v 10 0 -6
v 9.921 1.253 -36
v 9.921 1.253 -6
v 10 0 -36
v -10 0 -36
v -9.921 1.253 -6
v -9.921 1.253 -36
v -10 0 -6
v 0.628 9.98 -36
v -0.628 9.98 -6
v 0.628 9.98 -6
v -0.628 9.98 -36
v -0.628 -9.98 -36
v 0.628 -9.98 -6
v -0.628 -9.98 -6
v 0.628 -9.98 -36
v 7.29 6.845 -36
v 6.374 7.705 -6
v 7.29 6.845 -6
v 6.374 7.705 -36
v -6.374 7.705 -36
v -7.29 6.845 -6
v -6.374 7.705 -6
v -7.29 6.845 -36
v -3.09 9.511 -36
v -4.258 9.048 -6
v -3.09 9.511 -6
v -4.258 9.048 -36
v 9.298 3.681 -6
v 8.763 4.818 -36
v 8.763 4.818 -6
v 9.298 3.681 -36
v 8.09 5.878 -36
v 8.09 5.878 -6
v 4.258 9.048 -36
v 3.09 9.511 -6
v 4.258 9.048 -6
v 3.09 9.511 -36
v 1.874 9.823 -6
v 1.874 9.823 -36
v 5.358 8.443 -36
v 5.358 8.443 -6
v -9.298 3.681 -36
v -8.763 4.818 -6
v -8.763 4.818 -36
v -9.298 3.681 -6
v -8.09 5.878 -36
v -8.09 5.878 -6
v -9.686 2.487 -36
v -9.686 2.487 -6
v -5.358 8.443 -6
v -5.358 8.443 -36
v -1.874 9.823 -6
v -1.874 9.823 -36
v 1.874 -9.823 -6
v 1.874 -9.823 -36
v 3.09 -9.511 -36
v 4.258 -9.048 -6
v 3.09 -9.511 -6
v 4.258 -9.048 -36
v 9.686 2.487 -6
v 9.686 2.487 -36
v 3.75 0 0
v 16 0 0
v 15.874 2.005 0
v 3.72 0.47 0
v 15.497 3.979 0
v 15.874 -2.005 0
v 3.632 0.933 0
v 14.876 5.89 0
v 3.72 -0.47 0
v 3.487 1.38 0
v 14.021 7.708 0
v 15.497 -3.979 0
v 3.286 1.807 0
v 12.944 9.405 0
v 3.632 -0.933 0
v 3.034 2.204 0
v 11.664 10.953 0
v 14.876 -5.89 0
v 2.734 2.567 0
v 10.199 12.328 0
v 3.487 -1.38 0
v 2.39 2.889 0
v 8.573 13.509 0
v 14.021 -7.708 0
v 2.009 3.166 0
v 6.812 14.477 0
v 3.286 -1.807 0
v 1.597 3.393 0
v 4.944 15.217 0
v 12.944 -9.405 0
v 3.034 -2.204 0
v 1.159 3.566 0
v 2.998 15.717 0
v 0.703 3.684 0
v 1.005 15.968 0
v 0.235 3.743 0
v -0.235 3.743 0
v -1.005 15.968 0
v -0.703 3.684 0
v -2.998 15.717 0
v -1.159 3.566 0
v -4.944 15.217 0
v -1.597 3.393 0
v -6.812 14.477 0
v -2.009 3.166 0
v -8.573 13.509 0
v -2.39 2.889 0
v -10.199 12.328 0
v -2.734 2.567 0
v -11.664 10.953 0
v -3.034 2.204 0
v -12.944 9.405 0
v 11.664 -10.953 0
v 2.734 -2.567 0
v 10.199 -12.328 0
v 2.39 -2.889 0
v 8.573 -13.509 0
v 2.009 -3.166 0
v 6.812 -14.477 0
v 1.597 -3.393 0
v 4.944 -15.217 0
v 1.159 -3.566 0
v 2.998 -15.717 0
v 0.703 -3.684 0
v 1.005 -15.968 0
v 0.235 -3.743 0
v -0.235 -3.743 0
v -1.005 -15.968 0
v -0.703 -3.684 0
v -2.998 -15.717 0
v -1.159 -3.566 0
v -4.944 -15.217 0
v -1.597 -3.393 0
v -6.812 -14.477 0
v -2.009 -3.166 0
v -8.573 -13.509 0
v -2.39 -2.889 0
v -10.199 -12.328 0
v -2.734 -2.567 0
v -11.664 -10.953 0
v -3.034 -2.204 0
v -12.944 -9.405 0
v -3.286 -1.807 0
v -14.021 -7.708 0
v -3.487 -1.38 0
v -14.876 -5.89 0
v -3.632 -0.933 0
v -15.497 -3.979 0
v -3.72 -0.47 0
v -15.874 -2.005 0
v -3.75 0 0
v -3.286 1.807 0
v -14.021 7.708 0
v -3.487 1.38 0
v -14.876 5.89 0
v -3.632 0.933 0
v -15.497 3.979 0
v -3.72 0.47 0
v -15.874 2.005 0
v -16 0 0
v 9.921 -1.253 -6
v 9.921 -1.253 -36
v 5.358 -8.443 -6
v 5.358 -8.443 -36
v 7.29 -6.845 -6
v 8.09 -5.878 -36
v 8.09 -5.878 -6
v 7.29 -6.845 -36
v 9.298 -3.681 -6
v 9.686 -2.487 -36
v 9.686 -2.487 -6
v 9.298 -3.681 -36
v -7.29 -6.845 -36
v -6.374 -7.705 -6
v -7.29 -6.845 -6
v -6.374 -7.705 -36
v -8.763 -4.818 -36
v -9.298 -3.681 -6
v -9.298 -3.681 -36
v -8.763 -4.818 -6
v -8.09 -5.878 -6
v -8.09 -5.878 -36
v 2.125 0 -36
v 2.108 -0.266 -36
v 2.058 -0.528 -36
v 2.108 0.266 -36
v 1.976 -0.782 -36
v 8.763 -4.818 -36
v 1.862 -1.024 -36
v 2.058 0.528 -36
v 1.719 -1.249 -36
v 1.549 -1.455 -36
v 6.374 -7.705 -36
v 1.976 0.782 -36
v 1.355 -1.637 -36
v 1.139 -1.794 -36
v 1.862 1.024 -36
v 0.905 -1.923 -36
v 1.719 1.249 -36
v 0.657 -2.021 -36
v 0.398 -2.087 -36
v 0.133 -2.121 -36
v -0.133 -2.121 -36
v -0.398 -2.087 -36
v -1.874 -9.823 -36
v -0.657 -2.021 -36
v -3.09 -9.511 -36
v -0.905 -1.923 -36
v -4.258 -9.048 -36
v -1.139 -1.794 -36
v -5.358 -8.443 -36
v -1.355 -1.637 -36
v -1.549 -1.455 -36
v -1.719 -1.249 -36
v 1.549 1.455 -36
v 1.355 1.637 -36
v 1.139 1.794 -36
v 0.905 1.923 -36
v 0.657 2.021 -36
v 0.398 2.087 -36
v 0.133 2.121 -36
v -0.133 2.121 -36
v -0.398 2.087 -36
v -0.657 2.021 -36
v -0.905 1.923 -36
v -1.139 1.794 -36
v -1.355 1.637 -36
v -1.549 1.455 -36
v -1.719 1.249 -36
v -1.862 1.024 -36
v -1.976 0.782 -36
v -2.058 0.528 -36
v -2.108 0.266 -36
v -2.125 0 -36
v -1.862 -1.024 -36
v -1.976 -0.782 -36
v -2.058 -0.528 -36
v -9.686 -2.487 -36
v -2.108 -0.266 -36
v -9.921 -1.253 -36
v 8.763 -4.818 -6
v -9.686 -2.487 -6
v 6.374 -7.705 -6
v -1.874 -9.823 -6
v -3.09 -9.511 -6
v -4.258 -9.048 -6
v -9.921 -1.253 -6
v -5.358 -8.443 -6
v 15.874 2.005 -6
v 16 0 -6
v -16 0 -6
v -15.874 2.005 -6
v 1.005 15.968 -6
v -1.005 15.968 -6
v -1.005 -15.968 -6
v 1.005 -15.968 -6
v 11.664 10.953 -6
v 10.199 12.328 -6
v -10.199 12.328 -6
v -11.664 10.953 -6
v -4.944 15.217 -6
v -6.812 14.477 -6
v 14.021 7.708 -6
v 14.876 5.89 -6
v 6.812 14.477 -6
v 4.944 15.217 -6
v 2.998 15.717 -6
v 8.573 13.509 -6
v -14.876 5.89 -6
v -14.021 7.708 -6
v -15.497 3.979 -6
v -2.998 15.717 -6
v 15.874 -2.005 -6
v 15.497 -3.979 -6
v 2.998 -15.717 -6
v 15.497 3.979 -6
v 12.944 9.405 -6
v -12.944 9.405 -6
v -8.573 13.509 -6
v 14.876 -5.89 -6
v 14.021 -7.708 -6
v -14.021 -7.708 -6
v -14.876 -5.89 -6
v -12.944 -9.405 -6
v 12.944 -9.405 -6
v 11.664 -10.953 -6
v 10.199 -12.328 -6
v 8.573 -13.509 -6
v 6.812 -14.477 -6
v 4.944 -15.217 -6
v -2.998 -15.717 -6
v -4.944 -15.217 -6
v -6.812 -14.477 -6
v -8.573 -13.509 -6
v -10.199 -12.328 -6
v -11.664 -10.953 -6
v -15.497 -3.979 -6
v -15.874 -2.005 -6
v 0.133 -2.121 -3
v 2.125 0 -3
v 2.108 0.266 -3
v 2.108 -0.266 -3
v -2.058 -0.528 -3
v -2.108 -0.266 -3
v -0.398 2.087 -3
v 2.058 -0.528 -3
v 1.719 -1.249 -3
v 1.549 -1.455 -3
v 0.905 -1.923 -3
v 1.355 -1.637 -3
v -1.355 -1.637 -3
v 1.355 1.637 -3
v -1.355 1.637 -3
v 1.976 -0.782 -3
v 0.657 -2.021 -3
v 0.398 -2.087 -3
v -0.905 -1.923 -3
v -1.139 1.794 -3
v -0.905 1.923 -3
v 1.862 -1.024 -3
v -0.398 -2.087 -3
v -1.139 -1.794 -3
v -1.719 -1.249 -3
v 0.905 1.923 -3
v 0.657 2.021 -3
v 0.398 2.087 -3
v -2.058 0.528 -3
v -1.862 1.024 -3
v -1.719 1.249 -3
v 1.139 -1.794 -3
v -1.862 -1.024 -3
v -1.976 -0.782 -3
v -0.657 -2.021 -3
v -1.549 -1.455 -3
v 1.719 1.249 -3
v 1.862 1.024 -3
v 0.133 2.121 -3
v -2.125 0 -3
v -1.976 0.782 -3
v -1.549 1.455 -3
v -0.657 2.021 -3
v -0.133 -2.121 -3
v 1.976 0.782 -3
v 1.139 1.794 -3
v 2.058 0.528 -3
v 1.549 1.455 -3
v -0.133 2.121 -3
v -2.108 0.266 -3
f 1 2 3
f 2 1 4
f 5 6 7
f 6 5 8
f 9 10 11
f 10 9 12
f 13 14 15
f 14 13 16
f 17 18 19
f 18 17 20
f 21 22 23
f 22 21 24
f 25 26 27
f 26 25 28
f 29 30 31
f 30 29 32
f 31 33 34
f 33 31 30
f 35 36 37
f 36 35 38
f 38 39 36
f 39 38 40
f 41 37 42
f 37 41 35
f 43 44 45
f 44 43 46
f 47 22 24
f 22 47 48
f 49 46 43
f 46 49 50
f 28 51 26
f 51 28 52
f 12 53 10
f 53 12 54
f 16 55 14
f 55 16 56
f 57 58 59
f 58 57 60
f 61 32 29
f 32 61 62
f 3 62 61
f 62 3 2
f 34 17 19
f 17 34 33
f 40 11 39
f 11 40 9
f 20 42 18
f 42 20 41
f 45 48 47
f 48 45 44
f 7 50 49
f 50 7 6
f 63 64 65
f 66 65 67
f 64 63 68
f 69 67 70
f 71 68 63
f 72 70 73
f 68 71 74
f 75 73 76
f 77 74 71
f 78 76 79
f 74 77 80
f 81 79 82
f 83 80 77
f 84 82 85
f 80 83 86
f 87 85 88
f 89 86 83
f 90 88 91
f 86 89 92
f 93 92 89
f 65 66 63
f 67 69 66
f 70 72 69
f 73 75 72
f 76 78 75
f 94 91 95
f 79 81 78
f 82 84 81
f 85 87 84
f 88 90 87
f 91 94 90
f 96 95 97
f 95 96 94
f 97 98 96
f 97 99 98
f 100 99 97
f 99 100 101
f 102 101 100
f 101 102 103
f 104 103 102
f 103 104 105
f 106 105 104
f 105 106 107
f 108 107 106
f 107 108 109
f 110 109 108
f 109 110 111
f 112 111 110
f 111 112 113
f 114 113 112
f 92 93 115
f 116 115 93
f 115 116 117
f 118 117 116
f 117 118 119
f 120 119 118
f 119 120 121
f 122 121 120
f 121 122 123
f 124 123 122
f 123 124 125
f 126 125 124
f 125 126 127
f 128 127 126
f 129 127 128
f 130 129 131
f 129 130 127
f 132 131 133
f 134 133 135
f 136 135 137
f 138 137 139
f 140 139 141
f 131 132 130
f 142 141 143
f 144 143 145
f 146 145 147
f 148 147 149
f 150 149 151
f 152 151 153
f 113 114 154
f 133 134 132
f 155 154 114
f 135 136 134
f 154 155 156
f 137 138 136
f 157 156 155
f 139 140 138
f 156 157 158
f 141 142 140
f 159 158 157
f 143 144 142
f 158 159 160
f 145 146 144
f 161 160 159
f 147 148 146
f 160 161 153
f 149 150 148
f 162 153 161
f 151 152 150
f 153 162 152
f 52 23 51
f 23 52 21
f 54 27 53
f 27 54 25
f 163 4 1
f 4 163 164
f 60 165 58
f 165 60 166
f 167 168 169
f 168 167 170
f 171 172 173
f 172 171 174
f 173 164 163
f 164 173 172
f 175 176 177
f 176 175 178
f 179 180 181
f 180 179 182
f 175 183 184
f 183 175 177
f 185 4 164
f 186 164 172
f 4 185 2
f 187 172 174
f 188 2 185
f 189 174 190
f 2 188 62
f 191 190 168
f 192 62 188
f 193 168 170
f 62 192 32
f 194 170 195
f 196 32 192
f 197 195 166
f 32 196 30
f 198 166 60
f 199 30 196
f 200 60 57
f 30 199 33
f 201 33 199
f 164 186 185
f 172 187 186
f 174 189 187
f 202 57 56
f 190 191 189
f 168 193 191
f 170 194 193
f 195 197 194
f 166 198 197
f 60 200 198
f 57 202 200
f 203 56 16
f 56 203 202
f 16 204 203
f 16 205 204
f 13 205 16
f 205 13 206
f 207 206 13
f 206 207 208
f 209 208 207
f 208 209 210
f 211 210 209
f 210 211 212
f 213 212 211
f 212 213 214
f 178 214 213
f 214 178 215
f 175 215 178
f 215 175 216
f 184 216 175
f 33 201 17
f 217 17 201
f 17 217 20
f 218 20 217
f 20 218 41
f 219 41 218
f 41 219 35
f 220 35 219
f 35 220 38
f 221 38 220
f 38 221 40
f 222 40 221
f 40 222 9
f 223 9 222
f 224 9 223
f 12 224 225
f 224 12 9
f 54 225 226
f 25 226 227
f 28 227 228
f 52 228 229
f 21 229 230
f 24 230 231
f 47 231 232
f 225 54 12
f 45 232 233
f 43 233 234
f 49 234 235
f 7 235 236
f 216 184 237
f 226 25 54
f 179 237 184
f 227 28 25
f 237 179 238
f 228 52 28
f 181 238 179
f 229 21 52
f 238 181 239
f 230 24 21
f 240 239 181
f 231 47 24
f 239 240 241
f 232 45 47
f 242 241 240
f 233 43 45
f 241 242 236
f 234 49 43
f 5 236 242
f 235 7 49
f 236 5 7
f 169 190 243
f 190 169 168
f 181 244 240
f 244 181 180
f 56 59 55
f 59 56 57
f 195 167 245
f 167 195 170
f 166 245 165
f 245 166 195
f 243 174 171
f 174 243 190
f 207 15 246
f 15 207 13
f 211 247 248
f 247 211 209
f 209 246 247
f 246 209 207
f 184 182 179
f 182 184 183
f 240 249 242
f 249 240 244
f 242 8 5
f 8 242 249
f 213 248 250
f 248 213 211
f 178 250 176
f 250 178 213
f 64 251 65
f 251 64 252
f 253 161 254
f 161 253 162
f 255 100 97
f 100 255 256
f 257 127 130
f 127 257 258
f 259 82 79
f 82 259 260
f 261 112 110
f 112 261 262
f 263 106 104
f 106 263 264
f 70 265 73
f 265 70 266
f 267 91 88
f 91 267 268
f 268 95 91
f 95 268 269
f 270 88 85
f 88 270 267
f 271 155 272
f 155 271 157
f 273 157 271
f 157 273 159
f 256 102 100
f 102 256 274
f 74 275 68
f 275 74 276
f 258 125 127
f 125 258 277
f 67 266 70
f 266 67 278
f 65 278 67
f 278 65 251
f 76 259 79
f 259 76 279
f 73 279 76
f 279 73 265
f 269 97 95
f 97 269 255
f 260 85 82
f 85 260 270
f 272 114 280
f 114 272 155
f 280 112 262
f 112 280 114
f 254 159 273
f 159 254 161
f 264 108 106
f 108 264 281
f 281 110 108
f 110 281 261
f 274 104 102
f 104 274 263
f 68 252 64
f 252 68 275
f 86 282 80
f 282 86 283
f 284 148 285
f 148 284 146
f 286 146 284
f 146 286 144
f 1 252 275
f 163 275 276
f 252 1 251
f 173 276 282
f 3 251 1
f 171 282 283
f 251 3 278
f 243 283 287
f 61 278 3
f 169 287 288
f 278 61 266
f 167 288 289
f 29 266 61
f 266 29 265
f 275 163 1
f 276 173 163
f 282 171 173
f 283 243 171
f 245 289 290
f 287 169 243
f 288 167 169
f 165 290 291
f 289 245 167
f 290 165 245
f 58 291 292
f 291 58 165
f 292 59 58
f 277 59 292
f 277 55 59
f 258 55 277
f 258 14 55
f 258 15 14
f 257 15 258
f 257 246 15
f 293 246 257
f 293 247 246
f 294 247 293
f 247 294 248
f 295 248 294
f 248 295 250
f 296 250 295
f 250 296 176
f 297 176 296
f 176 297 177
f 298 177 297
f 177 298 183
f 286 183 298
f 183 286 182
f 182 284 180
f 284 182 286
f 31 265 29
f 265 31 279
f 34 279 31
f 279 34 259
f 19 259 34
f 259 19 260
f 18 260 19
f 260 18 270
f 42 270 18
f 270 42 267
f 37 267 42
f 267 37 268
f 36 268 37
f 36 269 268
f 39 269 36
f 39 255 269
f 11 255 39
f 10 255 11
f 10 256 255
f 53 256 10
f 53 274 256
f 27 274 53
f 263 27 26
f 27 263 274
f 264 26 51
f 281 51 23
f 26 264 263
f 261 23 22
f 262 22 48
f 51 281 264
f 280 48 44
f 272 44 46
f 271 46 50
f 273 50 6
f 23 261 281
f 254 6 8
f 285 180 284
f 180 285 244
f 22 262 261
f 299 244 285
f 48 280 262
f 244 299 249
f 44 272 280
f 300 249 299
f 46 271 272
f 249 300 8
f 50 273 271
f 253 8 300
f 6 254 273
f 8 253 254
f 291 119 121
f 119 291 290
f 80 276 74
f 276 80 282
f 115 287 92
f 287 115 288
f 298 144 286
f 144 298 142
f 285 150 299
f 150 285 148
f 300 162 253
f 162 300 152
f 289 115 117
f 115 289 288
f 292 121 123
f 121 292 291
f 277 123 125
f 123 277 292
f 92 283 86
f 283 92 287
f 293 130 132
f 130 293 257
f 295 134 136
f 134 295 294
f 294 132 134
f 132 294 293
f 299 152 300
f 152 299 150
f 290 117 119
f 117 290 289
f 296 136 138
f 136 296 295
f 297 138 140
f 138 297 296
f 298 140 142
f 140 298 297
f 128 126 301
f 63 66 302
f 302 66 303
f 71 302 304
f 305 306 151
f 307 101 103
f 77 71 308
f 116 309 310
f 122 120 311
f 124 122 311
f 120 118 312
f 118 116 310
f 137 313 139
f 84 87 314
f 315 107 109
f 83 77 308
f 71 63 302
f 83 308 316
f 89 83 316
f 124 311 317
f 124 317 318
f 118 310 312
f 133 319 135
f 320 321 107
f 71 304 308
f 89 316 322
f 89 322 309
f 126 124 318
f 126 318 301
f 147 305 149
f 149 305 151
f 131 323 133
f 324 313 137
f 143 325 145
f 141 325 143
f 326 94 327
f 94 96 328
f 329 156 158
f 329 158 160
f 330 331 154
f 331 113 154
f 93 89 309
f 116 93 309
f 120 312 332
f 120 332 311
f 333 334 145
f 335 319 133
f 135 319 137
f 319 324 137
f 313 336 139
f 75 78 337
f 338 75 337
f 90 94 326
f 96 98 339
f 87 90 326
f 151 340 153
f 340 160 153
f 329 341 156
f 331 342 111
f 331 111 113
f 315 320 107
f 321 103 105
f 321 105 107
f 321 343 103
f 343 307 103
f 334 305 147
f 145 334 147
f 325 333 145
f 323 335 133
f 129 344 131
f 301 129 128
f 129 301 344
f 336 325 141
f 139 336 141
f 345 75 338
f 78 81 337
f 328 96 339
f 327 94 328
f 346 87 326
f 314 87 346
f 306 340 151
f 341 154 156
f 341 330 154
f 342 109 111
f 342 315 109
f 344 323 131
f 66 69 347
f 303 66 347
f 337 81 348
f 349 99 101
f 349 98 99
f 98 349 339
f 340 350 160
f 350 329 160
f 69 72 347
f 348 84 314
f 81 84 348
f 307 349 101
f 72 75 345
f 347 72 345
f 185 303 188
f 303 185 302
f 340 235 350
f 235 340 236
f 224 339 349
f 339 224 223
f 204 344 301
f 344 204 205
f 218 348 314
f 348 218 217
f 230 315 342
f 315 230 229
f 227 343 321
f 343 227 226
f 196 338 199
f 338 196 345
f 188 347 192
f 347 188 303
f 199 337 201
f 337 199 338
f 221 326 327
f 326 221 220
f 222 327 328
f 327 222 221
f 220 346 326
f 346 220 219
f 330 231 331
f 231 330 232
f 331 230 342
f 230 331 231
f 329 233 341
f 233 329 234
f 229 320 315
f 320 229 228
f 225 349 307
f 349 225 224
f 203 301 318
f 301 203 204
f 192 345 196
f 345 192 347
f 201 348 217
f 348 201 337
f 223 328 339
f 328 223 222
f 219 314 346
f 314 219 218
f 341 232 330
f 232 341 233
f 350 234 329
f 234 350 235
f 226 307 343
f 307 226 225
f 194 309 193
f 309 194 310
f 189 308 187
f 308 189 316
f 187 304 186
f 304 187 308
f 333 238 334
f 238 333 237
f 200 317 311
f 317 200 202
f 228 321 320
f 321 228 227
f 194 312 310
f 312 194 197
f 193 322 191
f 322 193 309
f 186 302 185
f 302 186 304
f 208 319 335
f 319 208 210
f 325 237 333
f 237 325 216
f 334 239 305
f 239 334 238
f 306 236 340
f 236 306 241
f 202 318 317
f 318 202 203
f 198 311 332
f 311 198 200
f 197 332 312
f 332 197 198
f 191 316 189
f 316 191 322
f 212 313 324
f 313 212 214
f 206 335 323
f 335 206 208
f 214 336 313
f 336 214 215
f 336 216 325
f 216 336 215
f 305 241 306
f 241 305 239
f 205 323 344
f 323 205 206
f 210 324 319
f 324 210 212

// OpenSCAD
$fn = 50;


difference() {
	union() {
		translate(v = [0, 0, -36.0000000000]) {
			cylinder(h = 36, r = 10.0000000000);
		}
		translate(v = [0, 0, -6.0000000000]) {
			cylinder(h = 6, r = 16.0000000000);
		}
	}
	union() {
		translate(v = [0, 0, 0]) {
			rotate(a = [0, 0, 0]) {
				difference() {
					union() {
						#translate(v = [0, 0, -36.0000000000]) {
							cylinder(h = 36, r = 2.0000000000);
						}
						#translate(v = [0, 0, -3]) {
							cylinder(h = 3, r1 = 2.1250000000, r2 = 3.7500000000);
						}
						#translate(v = [0, 0, -36.0000000000]) {
							cylinder(h = 36, r = 2.1250000000);
						}
						#translate(v = [0, 0, -36.0000000000]) {
							cylinder(h = 36, r = 2.0000000000);
						}
					}
					union();
				}
			}
		}
	}
}
